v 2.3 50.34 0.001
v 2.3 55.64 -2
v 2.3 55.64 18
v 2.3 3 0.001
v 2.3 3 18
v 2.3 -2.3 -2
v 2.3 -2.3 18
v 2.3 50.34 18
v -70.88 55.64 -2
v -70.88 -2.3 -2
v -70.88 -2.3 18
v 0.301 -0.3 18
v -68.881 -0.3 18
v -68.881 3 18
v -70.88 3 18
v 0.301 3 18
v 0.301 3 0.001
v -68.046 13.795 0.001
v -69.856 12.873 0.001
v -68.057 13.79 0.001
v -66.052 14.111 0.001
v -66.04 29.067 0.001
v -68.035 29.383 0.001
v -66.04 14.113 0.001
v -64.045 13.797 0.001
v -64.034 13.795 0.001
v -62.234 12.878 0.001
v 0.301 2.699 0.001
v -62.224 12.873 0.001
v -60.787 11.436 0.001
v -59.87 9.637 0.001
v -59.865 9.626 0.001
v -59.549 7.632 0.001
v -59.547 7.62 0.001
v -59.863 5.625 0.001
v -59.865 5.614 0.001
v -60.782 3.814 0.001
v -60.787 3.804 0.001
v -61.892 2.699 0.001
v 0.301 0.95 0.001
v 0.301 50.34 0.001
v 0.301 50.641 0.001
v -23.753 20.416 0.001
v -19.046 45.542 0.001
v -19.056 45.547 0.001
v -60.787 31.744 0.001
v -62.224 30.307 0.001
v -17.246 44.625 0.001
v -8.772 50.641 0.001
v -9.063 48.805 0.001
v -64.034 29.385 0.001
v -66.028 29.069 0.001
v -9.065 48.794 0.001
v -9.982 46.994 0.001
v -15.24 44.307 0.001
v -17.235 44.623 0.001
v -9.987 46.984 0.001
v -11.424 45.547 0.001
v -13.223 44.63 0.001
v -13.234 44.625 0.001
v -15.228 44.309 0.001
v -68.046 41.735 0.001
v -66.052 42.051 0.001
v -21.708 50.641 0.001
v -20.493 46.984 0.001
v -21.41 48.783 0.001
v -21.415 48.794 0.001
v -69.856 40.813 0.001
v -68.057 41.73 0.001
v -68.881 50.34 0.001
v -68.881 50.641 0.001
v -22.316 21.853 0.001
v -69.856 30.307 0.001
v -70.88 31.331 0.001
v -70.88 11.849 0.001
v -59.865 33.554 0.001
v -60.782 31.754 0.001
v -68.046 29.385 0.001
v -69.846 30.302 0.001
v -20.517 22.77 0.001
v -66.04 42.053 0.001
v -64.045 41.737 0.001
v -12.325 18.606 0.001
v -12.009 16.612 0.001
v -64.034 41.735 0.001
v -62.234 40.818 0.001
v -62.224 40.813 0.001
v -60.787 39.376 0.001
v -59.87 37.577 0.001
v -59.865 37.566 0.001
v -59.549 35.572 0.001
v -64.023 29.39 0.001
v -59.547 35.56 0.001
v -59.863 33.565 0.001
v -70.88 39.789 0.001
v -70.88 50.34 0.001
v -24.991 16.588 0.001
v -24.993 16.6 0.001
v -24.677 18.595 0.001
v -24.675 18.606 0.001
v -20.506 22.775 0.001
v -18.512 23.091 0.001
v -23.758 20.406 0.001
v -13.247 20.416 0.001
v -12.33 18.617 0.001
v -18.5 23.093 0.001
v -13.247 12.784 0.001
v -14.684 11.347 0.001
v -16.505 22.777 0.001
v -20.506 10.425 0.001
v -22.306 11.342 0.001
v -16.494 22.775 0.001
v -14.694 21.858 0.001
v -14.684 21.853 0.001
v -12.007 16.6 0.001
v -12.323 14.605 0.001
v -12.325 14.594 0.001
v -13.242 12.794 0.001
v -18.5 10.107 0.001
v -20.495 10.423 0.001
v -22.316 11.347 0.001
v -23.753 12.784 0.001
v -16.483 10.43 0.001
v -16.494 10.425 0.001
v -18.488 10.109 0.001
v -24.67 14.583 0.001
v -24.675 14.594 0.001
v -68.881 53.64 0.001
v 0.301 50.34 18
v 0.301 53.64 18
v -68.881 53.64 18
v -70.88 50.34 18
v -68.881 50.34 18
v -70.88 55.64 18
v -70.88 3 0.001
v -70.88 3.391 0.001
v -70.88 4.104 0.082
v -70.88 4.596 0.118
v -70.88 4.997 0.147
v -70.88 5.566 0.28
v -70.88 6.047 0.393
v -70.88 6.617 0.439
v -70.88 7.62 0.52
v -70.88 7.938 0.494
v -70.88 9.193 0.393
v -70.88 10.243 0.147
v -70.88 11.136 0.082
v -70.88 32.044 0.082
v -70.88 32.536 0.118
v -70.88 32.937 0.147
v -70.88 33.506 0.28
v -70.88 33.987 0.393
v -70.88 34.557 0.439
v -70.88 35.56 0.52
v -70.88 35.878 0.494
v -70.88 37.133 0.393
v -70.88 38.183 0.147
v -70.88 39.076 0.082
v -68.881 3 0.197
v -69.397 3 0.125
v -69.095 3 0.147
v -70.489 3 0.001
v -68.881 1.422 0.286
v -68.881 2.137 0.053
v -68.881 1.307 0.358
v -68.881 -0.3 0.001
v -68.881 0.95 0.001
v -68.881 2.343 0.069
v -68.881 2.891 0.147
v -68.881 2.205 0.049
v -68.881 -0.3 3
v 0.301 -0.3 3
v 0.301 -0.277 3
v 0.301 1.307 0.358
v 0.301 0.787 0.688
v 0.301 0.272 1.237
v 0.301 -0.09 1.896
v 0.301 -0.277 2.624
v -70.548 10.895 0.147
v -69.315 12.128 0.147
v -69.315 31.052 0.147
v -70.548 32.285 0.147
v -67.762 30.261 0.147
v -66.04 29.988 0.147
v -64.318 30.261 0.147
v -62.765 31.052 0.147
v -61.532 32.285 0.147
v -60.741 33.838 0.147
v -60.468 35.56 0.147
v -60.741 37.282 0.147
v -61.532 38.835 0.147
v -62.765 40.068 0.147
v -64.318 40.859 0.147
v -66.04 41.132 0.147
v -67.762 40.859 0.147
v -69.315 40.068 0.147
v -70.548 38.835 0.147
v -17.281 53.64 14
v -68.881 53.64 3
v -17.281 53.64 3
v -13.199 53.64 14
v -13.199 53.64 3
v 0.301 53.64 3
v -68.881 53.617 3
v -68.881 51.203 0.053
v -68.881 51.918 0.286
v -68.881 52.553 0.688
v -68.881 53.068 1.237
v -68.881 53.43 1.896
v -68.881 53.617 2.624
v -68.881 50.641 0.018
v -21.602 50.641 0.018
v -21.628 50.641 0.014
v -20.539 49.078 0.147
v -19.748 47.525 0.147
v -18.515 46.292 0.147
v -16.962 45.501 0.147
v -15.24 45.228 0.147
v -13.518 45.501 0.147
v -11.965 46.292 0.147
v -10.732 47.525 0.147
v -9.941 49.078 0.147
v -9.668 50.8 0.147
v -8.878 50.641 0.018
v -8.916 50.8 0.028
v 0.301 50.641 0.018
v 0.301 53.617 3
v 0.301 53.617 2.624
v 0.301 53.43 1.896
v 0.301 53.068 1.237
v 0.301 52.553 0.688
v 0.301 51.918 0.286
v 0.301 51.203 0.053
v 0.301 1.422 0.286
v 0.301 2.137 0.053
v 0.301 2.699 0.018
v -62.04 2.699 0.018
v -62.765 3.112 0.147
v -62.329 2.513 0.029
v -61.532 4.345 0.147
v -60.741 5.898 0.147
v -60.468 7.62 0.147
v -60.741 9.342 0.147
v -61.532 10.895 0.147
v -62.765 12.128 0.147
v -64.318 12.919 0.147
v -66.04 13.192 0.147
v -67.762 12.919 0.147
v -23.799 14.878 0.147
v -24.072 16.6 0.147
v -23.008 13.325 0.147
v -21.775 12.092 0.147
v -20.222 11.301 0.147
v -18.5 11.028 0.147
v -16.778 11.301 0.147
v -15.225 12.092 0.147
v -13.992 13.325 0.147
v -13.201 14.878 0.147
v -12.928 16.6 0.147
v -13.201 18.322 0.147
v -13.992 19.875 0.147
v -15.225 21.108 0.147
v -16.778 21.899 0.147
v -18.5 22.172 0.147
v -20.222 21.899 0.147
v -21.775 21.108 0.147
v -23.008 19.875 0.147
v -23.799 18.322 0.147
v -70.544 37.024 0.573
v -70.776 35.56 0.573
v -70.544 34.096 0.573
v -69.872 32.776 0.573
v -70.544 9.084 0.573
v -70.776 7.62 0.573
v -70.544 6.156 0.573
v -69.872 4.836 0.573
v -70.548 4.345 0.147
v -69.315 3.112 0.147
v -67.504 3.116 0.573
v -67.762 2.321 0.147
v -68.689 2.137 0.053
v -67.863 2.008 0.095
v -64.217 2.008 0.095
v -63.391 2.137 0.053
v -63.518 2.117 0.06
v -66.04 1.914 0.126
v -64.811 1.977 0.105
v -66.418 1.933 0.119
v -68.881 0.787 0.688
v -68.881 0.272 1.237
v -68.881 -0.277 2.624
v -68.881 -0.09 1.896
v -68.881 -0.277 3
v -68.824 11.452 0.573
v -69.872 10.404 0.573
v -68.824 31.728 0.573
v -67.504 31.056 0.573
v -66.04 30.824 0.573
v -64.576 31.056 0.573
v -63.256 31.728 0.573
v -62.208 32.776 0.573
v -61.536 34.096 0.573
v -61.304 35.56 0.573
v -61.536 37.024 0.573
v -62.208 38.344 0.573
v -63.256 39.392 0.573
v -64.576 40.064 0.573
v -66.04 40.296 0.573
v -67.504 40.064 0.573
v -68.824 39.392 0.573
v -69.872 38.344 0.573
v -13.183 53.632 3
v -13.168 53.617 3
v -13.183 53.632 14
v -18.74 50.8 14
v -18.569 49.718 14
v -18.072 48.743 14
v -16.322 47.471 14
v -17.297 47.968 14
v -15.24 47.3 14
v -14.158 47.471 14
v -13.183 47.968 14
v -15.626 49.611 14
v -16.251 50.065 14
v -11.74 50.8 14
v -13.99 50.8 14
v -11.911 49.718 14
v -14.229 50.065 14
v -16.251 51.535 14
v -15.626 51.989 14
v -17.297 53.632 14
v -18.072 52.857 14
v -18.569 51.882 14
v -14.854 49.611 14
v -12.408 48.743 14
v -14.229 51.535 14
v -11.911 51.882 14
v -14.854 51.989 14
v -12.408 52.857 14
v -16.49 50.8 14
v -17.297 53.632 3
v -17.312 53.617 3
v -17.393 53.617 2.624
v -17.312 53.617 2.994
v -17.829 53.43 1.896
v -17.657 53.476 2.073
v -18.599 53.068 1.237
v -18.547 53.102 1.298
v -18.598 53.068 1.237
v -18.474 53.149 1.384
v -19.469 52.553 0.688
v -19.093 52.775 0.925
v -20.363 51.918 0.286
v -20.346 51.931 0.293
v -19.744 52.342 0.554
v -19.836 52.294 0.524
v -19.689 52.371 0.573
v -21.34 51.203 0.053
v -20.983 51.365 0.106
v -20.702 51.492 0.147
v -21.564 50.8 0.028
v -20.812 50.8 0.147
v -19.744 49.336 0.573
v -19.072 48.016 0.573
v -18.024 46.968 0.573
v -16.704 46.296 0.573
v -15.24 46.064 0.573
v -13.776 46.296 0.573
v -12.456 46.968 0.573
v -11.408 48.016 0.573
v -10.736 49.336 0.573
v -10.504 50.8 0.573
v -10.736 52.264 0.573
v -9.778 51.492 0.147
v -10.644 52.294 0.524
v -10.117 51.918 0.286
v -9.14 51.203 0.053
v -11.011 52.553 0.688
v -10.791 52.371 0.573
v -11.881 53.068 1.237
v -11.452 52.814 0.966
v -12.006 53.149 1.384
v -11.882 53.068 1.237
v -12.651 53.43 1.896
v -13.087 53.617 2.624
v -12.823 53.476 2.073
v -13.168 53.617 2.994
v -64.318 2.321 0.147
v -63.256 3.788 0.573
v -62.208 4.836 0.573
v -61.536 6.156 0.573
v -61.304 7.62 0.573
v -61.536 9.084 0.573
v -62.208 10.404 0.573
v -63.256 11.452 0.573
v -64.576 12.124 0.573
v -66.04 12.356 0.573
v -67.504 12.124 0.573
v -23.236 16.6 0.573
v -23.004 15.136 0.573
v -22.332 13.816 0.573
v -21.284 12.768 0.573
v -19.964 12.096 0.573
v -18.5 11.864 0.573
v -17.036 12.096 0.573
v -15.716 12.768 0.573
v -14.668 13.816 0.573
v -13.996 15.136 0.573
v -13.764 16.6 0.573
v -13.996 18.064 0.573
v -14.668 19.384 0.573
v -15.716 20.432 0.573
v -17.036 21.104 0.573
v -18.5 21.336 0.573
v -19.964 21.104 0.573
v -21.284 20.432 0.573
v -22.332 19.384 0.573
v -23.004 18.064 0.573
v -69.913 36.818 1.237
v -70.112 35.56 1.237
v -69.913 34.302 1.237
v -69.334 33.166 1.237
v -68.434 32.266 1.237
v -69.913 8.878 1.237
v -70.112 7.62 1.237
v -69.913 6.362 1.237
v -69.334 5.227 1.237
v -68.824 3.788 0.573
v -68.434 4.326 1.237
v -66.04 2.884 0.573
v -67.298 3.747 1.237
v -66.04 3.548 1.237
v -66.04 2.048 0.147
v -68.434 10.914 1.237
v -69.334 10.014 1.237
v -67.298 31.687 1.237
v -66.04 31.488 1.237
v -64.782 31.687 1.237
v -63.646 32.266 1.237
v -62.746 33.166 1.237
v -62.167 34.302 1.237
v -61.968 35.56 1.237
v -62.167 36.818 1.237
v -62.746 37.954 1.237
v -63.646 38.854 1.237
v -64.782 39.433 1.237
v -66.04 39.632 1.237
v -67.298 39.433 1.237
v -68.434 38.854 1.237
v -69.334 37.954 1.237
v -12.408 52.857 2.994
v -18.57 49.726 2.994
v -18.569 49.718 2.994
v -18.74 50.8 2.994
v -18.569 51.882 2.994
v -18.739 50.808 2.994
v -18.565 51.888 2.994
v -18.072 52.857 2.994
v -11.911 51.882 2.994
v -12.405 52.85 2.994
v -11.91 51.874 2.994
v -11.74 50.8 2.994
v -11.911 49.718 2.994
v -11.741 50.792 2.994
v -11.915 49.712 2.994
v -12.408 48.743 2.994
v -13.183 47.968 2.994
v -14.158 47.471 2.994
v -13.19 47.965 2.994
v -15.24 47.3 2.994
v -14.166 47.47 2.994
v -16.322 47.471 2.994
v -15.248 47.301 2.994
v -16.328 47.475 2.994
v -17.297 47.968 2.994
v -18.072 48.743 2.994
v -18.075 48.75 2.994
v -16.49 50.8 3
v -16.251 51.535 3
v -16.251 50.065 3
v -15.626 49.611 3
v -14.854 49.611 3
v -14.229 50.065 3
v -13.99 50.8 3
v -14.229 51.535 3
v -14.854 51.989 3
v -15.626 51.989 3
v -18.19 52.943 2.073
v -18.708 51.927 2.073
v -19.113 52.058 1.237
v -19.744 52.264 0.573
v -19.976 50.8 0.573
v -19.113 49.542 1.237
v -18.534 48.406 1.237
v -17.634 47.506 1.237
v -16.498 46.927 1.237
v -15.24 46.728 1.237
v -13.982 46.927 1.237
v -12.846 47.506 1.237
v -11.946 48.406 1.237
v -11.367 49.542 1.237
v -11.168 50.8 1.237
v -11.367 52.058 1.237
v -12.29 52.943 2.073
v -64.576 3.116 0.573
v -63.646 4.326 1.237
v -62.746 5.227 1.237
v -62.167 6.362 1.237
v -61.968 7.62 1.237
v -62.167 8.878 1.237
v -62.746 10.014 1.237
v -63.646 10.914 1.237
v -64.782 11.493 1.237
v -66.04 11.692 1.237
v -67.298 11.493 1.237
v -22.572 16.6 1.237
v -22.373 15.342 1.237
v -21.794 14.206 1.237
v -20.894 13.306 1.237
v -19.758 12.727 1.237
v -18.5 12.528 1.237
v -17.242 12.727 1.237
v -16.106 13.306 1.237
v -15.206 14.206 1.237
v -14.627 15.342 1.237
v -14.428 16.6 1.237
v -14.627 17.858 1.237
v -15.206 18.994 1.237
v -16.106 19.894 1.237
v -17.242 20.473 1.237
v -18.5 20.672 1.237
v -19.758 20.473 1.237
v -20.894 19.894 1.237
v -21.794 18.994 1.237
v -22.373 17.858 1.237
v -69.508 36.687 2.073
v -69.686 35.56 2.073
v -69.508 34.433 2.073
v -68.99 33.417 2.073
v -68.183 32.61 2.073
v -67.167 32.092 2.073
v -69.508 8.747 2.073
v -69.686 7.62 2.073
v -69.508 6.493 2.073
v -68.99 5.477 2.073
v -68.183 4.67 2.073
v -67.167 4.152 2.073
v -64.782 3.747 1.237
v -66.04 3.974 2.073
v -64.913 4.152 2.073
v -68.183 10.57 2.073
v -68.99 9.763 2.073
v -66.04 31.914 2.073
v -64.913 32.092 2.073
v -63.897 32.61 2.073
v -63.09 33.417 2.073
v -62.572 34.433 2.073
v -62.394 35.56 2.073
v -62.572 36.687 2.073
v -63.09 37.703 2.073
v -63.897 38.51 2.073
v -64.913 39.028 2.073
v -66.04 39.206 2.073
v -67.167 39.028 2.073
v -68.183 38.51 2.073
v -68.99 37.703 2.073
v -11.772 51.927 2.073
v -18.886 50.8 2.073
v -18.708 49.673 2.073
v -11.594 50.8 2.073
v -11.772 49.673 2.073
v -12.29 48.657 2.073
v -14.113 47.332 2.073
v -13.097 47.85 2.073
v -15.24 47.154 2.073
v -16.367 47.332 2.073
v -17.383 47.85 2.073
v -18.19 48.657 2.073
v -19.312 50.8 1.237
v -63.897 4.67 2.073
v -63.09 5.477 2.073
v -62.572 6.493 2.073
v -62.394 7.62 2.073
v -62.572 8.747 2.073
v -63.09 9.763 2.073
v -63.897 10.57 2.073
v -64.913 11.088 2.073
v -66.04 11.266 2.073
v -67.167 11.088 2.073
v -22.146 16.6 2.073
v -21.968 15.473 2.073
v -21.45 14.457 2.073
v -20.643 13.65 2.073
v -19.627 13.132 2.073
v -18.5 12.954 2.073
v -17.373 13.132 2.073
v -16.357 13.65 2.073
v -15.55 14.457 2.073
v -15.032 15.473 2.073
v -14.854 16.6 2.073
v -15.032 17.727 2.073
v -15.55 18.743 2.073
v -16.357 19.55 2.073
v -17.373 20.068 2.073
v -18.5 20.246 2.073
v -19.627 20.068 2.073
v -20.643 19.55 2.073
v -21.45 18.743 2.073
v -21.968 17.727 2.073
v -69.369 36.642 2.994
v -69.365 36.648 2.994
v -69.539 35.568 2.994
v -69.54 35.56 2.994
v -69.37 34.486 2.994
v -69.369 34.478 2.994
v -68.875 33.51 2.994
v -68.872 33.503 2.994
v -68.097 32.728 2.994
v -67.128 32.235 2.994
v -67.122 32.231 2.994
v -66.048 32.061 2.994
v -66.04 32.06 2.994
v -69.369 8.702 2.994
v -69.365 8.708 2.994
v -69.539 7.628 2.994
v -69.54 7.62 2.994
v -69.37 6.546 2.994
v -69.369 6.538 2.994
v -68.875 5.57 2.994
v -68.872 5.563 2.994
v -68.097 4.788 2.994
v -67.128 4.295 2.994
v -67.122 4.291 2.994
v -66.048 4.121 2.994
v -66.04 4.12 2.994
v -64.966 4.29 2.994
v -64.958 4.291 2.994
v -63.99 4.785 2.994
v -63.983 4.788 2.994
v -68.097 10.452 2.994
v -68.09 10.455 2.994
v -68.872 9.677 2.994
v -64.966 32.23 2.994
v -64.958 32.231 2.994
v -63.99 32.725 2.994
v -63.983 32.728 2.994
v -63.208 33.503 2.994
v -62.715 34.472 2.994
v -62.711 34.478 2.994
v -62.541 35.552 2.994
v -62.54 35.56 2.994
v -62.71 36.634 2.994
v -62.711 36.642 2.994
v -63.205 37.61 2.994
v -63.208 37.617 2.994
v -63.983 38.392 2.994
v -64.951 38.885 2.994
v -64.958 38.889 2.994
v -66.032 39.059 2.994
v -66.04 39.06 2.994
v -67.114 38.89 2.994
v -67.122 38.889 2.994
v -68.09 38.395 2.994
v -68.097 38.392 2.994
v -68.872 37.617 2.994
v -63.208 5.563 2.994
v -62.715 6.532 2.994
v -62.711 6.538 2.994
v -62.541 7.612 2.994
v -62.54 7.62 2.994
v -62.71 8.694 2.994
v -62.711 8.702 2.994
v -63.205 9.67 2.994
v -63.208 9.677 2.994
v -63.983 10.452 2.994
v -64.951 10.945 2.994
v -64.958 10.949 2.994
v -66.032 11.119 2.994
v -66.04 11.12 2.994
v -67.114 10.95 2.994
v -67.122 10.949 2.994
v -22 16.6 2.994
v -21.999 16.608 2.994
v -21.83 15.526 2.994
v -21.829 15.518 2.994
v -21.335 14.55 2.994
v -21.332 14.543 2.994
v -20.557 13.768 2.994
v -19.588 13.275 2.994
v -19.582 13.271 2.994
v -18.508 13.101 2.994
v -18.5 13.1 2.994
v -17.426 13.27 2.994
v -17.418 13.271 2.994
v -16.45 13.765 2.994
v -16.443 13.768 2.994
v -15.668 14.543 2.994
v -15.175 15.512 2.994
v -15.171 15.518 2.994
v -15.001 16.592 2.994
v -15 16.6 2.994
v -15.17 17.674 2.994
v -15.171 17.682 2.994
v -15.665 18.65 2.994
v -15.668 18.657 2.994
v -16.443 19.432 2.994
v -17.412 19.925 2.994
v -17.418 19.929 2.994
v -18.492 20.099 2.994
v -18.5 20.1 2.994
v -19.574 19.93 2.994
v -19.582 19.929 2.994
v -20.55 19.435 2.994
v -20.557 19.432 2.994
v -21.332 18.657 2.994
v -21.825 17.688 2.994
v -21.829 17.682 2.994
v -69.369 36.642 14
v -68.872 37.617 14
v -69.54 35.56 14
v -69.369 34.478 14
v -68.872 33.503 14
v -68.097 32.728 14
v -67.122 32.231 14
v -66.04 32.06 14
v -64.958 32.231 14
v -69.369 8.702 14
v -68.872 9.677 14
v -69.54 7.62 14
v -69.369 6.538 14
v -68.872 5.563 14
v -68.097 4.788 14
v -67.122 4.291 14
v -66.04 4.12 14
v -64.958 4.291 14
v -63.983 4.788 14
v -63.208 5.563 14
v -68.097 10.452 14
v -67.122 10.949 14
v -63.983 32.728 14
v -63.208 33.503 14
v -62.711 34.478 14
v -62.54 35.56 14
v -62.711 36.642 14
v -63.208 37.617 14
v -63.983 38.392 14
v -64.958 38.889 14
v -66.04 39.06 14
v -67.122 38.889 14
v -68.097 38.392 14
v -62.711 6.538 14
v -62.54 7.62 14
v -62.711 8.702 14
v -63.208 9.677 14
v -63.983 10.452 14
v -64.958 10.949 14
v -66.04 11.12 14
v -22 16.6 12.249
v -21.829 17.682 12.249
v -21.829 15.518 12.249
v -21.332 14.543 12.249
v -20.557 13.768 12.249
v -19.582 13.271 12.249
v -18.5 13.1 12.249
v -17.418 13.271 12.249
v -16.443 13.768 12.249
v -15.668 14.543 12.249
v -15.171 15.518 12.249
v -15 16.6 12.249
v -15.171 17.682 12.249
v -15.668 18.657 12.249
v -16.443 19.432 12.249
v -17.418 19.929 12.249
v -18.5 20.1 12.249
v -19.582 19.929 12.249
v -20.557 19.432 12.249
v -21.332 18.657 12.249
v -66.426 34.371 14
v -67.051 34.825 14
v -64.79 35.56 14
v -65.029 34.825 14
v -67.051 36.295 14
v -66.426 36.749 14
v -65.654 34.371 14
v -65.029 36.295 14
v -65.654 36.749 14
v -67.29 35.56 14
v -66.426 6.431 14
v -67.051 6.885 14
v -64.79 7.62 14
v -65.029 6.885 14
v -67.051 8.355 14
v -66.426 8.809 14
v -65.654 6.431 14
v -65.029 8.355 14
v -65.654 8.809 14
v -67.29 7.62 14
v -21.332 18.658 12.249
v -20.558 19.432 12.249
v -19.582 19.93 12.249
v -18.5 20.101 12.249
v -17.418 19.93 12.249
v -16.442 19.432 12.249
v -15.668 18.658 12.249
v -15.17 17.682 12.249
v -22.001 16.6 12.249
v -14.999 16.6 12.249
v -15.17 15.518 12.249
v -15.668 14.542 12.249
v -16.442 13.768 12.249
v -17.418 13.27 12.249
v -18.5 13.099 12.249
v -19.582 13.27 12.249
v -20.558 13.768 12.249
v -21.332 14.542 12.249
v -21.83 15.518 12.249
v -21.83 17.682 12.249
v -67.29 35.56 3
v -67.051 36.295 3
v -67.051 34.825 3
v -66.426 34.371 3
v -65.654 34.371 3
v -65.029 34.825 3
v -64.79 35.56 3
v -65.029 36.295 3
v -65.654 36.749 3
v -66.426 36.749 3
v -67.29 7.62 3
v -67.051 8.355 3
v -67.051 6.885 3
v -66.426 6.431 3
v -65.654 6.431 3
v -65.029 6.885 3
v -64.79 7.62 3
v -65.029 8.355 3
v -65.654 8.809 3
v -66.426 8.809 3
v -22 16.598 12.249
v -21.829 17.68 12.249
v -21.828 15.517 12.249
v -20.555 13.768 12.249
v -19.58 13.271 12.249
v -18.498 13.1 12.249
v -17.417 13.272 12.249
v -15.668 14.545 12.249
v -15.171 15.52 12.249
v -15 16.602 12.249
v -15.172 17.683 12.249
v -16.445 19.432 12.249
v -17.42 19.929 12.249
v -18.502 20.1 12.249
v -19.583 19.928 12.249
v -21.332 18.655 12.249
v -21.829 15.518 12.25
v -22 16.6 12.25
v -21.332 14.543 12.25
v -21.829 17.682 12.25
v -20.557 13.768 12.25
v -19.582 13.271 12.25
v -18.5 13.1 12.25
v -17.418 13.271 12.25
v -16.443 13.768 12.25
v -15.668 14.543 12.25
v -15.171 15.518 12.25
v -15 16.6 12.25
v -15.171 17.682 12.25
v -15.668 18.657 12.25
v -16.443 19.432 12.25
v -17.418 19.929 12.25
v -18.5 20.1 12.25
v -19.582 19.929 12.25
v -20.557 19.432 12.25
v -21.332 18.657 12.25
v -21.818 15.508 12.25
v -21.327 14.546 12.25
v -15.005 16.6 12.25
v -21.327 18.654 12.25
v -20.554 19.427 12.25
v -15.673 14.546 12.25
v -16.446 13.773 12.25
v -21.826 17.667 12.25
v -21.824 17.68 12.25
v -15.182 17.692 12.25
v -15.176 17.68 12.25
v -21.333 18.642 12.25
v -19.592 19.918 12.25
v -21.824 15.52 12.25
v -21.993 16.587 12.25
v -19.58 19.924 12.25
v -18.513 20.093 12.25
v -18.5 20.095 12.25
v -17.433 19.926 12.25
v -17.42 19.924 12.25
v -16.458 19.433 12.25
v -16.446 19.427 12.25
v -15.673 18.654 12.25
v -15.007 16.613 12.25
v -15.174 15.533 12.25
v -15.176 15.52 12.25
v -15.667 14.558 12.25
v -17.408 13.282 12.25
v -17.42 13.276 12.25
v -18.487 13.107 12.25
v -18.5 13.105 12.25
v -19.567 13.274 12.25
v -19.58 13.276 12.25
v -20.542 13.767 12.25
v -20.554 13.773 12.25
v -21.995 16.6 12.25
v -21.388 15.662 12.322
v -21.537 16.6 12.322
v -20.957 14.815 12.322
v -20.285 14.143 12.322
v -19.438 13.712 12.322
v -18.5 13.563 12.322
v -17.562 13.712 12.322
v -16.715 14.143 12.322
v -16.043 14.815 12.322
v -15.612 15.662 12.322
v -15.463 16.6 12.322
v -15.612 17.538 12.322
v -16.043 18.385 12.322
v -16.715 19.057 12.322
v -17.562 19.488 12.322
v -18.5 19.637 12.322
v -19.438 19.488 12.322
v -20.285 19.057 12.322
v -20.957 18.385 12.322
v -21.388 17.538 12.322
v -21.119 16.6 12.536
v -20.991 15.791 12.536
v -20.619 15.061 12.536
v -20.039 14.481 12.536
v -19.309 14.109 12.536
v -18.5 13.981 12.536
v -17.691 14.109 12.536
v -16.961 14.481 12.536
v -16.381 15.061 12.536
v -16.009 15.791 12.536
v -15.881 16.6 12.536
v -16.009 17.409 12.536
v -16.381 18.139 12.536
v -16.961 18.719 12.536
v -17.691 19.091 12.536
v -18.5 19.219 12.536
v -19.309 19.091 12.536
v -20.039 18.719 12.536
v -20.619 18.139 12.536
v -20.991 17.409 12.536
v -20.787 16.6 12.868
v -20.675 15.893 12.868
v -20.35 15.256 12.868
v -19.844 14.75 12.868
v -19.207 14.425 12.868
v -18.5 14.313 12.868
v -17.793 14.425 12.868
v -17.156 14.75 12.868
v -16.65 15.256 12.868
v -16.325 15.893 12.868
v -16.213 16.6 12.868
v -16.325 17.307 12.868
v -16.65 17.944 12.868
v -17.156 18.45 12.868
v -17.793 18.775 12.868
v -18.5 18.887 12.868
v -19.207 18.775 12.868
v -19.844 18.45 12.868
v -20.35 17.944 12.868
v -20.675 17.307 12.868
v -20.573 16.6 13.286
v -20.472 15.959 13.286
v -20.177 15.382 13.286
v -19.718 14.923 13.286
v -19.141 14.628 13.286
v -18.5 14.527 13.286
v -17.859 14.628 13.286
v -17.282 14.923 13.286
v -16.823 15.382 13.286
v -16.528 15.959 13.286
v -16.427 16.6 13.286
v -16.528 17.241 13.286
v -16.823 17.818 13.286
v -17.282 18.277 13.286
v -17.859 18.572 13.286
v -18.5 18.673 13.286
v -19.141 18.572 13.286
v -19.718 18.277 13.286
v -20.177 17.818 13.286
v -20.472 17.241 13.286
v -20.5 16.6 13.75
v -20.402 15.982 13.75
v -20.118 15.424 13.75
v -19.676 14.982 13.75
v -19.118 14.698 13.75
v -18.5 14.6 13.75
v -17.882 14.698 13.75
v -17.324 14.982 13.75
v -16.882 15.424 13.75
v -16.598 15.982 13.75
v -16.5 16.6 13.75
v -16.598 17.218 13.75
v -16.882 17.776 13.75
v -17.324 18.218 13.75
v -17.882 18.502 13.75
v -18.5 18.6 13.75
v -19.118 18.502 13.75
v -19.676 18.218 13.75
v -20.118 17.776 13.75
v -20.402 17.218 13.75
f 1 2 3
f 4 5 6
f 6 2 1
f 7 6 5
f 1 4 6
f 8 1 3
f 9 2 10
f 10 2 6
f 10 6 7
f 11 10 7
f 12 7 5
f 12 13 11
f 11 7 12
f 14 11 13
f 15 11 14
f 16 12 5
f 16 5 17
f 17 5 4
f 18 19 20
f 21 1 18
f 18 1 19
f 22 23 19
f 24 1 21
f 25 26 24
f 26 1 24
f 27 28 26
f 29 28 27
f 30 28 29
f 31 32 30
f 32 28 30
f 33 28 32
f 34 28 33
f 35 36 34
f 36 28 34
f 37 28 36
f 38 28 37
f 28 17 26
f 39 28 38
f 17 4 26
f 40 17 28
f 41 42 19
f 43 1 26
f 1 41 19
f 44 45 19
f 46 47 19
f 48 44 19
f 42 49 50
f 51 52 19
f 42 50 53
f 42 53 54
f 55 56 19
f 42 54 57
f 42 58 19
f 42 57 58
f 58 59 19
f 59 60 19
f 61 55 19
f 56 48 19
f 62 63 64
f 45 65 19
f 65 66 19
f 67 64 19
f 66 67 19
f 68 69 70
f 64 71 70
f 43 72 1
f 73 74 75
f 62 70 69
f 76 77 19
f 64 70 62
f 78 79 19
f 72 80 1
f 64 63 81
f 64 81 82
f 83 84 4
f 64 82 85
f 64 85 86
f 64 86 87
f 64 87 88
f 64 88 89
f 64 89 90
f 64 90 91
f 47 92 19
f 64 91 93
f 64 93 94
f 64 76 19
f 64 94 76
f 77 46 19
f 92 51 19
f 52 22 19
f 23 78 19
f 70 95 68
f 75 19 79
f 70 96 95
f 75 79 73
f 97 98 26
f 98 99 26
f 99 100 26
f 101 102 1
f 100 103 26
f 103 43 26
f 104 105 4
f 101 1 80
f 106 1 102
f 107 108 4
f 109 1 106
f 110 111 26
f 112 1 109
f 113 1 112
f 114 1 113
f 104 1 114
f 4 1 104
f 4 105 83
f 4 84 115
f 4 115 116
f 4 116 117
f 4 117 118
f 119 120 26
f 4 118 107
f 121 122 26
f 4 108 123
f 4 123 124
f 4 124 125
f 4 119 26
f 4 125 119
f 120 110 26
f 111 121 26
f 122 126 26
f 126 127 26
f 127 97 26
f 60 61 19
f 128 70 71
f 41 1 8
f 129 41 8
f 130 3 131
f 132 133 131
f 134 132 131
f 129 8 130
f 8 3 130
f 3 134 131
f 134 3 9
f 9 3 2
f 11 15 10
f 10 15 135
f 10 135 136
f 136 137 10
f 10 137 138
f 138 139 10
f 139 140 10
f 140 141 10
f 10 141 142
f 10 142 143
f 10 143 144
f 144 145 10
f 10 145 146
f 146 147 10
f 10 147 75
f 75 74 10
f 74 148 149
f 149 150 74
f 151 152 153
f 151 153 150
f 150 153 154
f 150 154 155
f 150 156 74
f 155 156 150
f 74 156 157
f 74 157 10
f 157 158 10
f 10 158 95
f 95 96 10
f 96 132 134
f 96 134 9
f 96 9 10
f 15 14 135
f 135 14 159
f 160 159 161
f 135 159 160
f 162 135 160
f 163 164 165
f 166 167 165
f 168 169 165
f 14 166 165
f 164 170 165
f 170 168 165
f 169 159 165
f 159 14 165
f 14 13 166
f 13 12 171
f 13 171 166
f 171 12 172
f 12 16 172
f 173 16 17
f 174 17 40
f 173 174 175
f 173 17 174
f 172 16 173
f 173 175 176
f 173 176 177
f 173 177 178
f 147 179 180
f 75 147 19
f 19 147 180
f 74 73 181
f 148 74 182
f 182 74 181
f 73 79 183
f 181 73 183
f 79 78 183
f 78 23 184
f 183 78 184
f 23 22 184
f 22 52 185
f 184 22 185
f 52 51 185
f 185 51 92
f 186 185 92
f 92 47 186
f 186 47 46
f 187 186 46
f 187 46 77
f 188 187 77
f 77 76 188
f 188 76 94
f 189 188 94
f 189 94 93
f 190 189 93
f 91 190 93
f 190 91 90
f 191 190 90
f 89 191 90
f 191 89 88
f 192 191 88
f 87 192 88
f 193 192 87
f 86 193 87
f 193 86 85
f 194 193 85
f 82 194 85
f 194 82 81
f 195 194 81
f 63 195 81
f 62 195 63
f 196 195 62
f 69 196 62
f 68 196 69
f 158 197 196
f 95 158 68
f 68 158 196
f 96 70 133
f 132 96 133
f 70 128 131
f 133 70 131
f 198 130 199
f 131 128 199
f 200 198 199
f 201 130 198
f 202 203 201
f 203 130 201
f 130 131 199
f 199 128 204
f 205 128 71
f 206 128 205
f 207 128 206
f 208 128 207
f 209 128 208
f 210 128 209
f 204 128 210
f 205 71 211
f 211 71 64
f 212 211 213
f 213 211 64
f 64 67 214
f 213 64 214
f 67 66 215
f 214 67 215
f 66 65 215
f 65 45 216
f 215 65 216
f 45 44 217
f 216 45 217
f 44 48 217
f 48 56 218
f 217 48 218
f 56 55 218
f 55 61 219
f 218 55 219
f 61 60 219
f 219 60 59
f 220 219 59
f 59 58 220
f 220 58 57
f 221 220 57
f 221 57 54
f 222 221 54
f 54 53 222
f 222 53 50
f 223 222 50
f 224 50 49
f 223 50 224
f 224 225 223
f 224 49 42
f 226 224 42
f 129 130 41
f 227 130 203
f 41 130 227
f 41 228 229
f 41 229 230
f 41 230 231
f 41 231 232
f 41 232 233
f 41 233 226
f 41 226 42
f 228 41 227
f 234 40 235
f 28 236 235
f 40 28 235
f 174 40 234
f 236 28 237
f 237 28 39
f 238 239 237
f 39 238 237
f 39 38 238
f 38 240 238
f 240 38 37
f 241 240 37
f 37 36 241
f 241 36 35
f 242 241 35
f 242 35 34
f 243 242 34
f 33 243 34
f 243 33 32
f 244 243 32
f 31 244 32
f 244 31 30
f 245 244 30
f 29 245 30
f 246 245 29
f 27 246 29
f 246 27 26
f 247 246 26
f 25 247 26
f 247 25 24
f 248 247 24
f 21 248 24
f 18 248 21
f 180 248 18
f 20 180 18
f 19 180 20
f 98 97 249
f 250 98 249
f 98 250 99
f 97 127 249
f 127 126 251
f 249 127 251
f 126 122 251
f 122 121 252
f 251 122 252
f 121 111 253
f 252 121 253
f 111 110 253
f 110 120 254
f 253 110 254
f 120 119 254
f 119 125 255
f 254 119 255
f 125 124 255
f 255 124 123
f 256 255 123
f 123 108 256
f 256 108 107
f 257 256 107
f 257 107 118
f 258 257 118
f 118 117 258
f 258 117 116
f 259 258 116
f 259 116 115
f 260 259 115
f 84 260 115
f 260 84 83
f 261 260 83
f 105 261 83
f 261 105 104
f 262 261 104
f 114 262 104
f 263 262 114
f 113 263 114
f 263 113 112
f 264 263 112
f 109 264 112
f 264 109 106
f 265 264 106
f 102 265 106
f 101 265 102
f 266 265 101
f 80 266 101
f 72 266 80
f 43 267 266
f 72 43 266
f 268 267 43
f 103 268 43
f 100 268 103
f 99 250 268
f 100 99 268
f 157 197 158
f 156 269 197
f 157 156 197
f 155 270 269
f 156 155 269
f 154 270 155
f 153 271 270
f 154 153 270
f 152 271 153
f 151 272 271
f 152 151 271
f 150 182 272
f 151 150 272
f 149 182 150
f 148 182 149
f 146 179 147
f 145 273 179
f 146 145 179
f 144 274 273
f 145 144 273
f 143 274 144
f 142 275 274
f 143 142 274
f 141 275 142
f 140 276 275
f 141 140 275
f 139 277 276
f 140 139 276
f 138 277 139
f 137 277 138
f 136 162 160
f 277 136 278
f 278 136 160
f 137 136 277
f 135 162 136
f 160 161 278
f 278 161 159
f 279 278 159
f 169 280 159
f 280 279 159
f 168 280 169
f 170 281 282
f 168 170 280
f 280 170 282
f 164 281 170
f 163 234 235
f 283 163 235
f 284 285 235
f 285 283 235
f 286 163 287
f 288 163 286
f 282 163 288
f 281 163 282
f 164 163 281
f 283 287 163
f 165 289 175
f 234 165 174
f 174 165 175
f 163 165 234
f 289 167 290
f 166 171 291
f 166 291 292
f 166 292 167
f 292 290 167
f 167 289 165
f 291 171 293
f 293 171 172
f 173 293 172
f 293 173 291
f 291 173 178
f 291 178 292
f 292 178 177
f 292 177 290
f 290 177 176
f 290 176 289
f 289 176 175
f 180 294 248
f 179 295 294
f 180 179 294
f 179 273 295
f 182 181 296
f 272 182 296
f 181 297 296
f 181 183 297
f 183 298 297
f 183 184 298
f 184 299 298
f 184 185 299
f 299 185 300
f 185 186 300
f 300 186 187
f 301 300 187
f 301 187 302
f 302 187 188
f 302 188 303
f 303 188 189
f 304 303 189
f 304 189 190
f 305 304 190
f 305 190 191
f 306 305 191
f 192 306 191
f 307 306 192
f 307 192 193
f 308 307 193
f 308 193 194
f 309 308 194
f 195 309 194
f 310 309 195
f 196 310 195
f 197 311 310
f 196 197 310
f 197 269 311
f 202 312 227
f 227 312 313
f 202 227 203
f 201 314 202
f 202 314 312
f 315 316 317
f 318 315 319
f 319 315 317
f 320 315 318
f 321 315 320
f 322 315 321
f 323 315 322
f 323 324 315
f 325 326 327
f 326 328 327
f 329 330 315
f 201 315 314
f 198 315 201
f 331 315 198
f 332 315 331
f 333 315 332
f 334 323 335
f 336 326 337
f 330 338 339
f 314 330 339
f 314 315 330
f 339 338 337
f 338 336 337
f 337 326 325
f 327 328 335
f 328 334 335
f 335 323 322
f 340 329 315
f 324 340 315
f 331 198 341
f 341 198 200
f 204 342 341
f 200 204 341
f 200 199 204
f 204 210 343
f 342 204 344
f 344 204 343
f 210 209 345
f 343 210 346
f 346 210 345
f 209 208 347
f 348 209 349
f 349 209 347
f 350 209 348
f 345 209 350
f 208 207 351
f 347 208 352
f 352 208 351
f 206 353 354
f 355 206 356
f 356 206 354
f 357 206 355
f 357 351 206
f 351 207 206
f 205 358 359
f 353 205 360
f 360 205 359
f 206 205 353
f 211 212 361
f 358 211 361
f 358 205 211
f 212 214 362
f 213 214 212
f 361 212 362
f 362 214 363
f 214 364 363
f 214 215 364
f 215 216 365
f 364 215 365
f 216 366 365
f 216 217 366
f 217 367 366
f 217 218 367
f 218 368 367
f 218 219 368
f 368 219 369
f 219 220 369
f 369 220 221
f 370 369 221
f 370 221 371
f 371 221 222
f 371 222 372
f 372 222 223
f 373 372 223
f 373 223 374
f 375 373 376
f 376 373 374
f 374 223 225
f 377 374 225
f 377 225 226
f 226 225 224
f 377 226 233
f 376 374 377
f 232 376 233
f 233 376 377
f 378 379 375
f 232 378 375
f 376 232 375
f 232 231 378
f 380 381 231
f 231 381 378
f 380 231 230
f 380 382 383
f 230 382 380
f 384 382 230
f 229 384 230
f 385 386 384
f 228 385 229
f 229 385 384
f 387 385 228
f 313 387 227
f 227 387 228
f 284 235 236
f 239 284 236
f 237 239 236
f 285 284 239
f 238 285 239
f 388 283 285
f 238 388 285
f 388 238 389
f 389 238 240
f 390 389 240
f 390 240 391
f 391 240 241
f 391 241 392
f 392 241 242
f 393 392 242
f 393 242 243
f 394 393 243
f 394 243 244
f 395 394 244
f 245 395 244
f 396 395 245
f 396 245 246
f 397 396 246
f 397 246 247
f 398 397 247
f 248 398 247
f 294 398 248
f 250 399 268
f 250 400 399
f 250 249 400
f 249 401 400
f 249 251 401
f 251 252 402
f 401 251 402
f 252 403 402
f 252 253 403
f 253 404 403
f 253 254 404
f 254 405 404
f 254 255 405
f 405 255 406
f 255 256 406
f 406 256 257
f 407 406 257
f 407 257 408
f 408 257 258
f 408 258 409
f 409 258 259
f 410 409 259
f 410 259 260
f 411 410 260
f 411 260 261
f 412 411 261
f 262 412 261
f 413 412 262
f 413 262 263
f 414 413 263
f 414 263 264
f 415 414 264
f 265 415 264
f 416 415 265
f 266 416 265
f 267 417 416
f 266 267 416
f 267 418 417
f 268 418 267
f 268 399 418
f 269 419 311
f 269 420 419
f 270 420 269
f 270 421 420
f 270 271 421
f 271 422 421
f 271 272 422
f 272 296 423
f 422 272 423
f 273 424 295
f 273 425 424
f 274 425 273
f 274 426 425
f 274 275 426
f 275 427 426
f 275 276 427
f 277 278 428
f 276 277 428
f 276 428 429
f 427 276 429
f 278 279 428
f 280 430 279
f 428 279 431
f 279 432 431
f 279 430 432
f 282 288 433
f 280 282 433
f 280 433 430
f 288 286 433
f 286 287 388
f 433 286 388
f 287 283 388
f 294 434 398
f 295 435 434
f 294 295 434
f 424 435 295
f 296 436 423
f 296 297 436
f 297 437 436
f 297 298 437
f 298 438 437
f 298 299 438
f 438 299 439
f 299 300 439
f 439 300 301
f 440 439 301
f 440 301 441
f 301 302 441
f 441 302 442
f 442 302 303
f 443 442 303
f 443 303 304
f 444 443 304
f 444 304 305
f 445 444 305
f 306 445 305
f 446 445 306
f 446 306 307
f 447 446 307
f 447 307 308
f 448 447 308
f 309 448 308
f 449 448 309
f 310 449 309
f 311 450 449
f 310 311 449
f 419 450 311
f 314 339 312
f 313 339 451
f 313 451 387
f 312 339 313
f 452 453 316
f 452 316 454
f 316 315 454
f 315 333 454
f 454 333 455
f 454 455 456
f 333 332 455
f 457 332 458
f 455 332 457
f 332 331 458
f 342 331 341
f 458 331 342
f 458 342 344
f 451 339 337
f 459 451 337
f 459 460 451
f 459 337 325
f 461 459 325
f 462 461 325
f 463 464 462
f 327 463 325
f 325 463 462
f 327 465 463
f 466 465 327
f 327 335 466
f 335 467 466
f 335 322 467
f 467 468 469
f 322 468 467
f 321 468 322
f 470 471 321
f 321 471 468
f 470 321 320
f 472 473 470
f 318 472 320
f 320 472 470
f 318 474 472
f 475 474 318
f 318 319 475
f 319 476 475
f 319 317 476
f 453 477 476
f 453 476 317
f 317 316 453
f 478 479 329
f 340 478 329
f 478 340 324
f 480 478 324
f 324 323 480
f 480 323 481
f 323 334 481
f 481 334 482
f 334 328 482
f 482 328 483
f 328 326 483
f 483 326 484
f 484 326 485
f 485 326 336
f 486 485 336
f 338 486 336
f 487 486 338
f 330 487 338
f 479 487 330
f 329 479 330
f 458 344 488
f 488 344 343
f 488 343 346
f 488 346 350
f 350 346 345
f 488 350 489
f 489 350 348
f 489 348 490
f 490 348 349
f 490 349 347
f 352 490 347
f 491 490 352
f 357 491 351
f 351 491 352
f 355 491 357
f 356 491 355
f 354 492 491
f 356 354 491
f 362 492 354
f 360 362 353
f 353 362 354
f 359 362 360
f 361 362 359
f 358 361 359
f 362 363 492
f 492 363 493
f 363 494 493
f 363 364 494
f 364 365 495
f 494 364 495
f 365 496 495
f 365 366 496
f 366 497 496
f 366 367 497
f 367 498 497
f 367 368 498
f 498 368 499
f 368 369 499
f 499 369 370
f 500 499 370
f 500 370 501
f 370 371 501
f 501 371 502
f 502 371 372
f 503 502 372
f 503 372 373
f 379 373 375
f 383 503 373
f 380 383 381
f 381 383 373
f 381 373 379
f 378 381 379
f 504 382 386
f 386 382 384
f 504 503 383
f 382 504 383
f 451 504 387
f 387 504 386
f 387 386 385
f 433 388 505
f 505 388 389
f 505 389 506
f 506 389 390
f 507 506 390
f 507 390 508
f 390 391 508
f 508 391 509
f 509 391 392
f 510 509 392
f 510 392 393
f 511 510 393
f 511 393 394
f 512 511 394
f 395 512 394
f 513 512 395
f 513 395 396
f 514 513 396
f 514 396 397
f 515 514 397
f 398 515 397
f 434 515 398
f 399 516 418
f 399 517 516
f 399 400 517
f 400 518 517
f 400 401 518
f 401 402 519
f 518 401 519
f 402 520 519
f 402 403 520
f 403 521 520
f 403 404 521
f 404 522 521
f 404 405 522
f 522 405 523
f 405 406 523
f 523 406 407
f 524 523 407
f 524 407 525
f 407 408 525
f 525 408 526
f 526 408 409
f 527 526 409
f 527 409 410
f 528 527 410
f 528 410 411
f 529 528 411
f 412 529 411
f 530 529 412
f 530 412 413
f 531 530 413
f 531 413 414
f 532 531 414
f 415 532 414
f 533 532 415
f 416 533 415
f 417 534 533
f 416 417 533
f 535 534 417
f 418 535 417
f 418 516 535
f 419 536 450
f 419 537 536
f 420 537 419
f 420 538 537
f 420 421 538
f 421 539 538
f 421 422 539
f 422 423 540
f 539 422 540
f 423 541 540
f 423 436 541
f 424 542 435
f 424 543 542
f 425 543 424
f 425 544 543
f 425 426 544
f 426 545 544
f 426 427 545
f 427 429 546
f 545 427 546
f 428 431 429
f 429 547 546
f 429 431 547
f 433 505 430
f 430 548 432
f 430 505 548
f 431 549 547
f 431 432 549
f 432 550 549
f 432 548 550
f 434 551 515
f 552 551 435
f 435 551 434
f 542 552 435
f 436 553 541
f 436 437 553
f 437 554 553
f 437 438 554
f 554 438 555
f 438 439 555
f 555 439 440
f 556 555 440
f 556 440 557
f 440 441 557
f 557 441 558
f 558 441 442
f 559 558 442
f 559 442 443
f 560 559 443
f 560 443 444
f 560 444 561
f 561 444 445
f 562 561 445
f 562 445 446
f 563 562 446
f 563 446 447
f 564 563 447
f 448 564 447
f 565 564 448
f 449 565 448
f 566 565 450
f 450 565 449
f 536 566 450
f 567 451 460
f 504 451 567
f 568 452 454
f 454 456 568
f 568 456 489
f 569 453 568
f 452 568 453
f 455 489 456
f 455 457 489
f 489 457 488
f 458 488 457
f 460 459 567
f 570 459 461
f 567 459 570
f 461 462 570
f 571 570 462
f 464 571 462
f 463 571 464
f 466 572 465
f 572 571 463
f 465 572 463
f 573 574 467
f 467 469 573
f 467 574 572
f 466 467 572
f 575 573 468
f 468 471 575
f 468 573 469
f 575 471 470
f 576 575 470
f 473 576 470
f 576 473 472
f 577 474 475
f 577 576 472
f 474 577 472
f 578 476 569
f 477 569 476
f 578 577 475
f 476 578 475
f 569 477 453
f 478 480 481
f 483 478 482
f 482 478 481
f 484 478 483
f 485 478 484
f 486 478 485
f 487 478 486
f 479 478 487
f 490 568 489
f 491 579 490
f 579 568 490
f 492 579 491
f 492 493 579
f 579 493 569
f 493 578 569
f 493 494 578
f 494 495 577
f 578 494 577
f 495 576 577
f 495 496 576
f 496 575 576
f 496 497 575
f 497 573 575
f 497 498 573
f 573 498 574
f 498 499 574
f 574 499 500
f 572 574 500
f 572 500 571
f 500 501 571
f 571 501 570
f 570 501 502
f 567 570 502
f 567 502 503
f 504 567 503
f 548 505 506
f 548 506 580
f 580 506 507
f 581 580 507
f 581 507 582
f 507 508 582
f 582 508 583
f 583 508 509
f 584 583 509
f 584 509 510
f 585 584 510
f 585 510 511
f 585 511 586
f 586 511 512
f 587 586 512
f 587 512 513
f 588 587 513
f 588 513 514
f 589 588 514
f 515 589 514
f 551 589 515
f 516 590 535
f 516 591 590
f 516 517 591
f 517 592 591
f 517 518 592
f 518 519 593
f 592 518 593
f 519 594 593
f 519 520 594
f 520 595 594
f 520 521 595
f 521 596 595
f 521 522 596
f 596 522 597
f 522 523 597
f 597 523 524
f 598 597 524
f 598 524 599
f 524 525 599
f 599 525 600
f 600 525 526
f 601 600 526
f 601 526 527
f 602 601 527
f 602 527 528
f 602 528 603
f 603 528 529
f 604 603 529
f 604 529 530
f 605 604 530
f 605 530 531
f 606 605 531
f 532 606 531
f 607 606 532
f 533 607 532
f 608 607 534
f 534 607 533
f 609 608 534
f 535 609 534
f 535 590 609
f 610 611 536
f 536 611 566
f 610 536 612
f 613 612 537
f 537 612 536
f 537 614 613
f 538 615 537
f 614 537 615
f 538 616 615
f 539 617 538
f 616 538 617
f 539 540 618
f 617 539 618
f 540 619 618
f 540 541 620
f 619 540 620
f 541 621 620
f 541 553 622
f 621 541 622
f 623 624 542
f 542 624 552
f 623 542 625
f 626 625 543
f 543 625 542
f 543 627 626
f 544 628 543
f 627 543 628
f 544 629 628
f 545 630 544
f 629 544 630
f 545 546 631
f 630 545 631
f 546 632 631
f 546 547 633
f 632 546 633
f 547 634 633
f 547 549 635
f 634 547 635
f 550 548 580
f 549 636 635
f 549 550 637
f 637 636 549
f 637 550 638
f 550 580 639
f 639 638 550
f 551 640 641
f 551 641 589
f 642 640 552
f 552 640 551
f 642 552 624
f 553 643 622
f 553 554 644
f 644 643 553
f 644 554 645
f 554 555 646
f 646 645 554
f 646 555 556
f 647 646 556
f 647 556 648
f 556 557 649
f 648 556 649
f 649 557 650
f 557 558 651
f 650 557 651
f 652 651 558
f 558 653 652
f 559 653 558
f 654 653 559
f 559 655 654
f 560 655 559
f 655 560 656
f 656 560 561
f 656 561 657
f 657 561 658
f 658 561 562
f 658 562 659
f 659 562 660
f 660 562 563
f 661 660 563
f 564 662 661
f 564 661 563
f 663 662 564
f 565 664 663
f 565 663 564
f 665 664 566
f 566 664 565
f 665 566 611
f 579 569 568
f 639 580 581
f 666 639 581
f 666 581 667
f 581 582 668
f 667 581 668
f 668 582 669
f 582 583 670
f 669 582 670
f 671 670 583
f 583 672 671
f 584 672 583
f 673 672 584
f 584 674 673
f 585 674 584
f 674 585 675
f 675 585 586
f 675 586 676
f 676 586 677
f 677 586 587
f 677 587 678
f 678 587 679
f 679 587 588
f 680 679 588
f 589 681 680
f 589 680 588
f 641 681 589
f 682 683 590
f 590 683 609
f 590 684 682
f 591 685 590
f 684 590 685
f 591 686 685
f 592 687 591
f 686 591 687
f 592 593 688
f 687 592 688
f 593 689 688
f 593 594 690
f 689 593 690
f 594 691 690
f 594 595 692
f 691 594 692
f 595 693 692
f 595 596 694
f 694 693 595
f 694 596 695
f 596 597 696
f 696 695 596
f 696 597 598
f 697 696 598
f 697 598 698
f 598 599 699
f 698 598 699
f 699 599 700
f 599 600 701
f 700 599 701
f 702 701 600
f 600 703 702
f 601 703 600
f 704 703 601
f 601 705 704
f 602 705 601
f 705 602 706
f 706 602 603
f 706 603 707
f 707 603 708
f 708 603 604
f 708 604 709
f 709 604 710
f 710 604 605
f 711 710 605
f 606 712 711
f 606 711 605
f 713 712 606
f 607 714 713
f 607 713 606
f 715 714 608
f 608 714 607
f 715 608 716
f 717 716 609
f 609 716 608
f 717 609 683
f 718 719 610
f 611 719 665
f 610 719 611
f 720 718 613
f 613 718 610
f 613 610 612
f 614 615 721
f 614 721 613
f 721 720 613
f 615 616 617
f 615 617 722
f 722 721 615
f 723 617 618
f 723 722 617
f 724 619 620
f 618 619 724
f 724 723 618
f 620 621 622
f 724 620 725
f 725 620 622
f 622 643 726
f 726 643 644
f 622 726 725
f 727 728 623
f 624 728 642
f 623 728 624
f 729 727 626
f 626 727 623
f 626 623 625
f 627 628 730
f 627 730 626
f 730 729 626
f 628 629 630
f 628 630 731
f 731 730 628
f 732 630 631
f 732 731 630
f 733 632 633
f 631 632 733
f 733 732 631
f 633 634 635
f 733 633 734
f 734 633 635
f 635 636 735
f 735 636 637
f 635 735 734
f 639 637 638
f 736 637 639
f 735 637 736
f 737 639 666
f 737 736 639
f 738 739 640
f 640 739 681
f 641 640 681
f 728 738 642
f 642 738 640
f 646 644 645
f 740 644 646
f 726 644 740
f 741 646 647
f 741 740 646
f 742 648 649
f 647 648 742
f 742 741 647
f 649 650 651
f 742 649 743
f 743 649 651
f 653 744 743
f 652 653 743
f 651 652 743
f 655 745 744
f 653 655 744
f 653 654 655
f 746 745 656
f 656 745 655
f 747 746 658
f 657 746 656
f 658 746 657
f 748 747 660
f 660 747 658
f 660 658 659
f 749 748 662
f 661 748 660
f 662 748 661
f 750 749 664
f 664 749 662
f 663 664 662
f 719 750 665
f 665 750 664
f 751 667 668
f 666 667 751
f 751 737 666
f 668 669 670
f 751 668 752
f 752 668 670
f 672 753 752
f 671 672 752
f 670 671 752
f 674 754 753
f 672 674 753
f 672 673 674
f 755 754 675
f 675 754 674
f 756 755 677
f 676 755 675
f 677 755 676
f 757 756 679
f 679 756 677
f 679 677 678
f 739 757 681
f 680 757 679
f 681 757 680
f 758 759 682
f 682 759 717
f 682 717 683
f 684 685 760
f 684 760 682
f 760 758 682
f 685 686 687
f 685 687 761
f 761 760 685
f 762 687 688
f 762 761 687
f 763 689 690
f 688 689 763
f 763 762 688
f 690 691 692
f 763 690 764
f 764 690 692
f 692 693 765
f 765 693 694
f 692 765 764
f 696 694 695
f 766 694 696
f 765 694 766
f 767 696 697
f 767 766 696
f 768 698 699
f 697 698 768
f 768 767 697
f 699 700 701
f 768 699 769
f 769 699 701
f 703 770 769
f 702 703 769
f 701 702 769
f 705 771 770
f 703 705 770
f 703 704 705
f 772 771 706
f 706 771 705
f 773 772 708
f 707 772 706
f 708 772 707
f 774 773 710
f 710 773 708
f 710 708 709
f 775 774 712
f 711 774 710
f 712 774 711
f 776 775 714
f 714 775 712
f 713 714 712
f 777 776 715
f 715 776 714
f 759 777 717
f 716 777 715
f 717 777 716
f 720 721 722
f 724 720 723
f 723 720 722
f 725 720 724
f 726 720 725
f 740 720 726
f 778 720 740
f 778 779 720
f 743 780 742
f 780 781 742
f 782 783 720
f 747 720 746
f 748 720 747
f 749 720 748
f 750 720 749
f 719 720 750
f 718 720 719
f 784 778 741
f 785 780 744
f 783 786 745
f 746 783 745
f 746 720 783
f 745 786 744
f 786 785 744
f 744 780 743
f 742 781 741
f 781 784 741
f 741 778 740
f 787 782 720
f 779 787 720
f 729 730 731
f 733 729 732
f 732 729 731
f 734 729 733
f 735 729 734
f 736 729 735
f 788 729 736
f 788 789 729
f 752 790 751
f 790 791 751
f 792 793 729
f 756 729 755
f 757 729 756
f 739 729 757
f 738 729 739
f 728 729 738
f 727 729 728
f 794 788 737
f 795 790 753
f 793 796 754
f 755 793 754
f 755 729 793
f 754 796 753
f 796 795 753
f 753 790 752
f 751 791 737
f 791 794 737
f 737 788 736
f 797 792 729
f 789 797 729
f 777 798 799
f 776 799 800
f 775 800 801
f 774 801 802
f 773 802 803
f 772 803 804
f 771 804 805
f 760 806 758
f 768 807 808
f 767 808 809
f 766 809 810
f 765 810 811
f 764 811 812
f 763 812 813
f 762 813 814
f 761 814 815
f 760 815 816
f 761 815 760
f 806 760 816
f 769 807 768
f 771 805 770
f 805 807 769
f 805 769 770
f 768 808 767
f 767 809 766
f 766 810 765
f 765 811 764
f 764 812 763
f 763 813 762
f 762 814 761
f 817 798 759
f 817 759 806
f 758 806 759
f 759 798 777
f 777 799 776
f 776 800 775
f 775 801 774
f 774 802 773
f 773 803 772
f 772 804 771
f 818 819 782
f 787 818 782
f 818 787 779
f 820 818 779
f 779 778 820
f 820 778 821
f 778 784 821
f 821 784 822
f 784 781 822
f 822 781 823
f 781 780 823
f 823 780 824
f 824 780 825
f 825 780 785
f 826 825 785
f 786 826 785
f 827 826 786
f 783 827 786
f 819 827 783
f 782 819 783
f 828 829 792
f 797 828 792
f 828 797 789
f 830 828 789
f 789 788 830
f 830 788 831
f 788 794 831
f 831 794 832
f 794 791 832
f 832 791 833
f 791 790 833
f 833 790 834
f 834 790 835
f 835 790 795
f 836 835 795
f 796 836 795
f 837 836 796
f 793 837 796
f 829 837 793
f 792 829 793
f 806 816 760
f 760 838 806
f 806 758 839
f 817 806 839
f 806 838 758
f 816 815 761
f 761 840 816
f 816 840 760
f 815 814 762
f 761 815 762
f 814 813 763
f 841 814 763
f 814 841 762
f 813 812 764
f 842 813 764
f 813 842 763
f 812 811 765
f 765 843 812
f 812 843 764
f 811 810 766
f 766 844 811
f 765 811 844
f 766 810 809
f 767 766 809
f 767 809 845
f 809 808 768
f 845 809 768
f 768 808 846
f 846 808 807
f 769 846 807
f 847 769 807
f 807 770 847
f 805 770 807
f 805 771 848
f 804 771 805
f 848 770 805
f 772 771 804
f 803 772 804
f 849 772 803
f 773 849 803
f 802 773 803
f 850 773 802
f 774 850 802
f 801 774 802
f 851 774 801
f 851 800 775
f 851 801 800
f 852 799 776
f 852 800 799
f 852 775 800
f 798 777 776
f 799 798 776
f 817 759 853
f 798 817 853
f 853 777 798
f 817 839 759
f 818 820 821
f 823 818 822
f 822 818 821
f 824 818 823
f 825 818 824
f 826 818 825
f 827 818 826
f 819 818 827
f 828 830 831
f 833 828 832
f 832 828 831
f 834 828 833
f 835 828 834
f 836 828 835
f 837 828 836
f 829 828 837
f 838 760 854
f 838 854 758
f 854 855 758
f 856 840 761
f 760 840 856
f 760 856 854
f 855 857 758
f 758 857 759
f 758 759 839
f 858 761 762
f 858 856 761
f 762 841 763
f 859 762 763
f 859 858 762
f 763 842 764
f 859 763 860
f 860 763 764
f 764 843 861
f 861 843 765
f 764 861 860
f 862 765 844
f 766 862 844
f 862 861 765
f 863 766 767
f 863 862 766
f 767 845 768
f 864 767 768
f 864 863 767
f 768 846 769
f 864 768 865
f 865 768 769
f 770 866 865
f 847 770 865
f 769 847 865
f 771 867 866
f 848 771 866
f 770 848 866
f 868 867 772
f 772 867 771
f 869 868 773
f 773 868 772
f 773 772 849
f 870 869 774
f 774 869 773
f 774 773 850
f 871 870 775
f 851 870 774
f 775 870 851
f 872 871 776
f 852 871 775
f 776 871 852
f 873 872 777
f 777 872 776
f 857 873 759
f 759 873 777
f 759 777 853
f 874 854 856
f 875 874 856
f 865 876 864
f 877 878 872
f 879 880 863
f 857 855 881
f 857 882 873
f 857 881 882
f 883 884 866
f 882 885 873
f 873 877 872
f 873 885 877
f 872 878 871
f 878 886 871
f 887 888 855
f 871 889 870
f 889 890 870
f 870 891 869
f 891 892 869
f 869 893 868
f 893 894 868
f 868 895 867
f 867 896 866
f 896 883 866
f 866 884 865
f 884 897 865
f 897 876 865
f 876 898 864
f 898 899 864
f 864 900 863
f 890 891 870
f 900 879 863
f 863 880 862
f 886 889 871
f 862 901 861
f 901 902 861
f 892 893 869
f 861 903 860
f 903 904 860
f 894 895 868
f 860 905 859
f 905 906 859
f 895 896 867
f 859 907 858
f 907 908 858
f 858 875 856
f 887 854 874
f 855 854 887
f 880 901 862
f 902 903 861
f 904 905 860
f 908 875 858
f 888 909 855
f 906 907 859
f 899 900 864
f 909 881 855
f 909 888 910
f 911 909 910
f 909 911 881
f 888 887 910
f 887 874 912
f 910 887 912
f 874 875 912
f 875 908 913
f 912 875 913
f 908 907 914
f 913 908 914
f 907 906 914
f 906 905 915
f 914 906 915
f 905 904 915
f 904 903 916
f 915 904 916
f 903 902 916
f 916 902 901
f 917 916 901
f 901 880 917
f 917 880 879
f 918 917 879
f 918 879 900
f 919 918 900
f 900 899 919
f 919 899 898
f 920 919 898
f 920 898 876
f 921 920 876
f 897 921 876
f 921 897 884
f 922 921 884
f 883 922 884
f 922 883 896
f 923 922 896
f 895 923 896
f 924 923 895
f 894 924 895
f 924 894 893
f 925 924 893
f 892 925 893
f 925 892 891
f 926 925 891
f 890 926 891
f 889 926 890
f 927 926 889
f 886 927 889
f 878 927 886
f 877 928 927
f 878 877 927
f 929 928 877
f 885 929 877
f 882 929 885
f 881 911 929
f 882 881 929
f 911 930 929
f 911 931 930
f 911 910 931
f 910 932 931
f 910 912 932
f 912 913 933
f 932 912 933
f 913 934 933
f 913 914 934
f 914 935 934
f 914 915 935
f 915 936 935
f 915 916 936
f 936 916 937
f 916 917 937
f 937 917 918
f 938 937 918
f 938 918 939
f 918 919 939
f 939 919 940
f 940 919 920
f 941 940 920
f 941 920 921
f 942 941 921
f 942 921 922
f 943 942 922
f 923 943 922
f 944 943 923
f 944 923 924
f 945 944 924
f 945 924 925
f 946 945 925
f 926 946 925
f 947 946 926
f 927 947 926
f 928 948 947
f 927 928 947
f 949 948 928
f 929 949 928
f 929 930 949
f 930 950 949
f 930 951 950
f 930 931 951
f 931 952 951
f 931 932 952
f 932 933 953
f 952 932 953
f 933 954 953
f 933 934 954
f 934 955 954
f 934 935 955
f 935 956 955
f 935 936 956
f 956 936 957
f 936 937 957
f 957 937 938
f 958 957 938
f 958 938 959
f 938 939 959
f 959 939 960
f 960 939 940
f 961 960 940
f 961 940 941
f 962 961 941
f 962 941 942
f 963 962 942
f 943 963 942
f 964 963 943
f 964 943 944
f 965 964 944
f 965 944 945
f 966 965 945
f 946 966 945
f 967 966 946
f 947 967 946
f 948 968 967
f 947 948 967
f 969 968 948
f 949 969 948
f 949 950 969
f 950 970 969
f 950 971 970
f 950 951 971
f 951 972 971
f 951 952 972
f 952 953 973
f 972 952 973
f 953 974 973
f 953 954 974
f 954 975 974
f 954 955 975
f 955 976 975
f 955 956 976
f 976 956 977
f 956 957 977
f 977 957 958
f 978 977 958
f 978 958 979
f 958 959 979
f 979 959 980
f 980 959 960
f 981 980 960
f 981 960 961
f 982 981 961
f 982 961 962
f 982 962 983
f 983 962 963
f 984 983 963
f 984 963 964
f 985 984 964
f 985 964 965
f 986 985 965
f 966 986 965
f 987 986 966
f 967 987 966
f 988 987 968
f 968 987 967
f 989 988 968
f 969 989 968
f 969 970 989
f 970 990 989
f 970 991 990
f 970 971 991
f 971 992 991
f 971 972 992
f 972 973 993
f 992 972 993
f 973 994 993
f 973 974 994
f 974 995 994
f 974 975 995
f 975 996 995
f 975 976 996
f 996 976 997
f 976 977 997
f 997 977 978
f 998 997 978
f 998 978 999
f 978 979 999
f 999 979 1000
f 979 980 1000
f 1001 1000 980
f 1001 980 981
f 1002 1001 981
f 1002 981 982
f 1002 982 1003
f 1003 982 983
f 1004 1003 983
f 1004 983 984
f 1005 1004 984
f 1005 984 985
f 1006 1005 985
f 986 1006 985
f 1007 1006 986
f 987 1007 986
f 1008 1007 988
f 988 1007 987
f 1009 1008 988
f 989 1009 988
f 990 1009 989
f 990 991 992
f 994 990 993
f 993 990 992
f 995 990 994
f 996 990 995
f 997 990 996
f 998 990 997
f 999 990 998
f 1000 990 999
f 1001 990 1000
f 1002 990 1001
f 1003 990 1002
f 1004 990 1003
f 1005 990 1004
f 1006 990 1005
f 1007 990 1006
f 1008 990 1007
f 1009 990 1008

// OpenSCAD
//
//  www.blinkenlight.net
//
//  Copyright 2014 Udo Klein
//
//  This program is free software: you can redistribute it and/or modify
//  it under the terms of the GNU General Public License as published by
//  the Free Software Foundation, either version 3 of the License, or
//  (at your option) any later version.
//
//  This program is distributed in the hope that it will be useful,
//  but WITHOUT ANY WARRANTY; without even the implied warranty of
//  MERCHANTABILITY or FITNESS FOR A PARTICULAR PURPOSE. See the
//  GNU General Public License for more details.
//
//  You should have received a copy of the GNU General Public License
//  along with this program. If not, see http://www.gnu.org/licenses/
 
board_length    = 68.58;
board_width     = 53.34;
board_z         = 14;
wall_height     = 18;
tolerance_delta = 0.3;   // how much the printer may wobble and thus make stuff wider
wall_width      = 2;
epsilon         = 0.001;
peg_smooth_r    = 3;
wall_smooth_r   = 3;
bolt_r          = 3.5;
bolt_drill      = 14;
hole_r          = 1.25;
protrude        = 3;

module chinese_hat(inner_radius, height) {
    rotate_extrude(convexity = 5, $fn=20)
    difference() {
        square([height+inner_radius, height]);
        translate([inner_radius+height, height, 0]) circle(r = height, $fn=20);
    }
}

module bolt(radius, hole_radius, length, depth) {
    difference() {
        cylinder(h=length, r=radius, $fn=20);
        translate([0,0,length-depth]) cylinder(h=length+2, r=hole_radius, $fn=10);
    }
}

module smooth_bolt(radius, hole_radius, length, depth, smooth_radius) {
    union() {
        bolt(radius, hole_radius, length, depth);
        chinese_hat(radius-epsilon, smooth_radius);
    }
}

module smooth_wall_transition(radius, length) {
    difference() {
        cube(size=[radius, radius, length]);
        translate([radius, radius,-1]) cylinder(h=length+2, r=radius, $fn=25);
    }
}

module standard_bolt(x, y) {
    translate([x,y,0]) union() {
        bolt(bolt_r, 1, board_z, bolt_drill);
    }
}

module smooth_standard_bolt(x, y) {
    translate([x,y,0]) union() {
        smooth_bolt(bolt_r, hole_r, board_z, bolt_drill, peg_smooth_r);
    }
}

module distance_peg(x, y) {
    translate([x,y,0]) bolt(2, 0.01, board_z, 0);
}

module smooth_distance_peg(x, y) {
    translate([x,y,0]) union() {
        smooth_bolt(bolt_r, 0.01, board_z-(bolt_r/2), 0, peg_smooth_r);
        translate([0,0,board_z-(bolt_r/2)-epsilon]) chinese_hat(2 , bolt_r-2+epsilon);
    }
}

module bounding_box(inner_length, inner_width, inner_height, wall_width) {
    outer_length = inner_length+2*(wall_width+tolerance_delta);
    outer_width  = inner_width +2*(wall_width+tolerance_delta);
    outer_height = inner_height+wall_width;

    translate([-wall_width-tolerance_delta, -wall_width-tolerance_delta, -wall_width])
         cube(size=[outer_length, outer_width, outer_height]);
}

module empty_enclosure(inner_length, inner_width, inner_height, wall_width) {
    outer_length = inner_length+2*(wall_width+tolerance_delta);
    outer_width  = inner_width +2*(wall_width+tolerance_delta);
    outer_height = inner_height+wall_width;

    translate([-wall_width-tolerance_delta, -wall_width-tolerance_delta, -wall_width])
    difference() {
         cube(size=[outer_length, outer_width, outer_height]);

         // inner floor will be at z = epsilon
         translate([wall_width-epsilon, wall_width, wall_width+epsilon]) 
             cube(size=[outer_length+2*epsilon-2*wall_width, inner_width+2*tolerance_delta, inner_height+1]);    
 
         // protruding walls
         translate([-2*wall_width, wall_width+tolerance_delta+protrude, wall_width+epsilon]) 
             cube(size=[4*wall_width+outer_length, inner_width-2*protrude, inner_height+1]);    

    }
    translate([board_length+tolerance_delta+epsilon, board_width+tolerance_delta+epsilon,0]) rotate ([90, 0, -90]) smooth_wall_transition(wall_smooth_r, board_length+2*tolerance_delta+2*epsilon);
    translate([-tolerance_delta-epsilon,-tolerance_delta-epsilon,0]) rotate ([90, 0, 90]) smooth_wall_transition(wall_smooth_r, board_length+2*tolerance_delta+2*epsilon);

}

module all() {
    union() {
        intersection() {
            union() {
                smooth_standard_bolt(15.24, 50.8);
                smooth_standard_bolt(66.04, 7.62);
                smooth_standard_bolt(66.04, 35.56);
                smooth_distance_peg(18.5, 16.6);
            }
            bounding_box(board_length, board_width, wall_height, wall_width);
        }

        empty_enclosure(board_length, board_width, wall_height, wall_width);
    }
}

mirror ([1,0,0]) all();

//rotate([180,0,180]) import("/home/udo/Downloads/blinkenlighty_case.stl");
